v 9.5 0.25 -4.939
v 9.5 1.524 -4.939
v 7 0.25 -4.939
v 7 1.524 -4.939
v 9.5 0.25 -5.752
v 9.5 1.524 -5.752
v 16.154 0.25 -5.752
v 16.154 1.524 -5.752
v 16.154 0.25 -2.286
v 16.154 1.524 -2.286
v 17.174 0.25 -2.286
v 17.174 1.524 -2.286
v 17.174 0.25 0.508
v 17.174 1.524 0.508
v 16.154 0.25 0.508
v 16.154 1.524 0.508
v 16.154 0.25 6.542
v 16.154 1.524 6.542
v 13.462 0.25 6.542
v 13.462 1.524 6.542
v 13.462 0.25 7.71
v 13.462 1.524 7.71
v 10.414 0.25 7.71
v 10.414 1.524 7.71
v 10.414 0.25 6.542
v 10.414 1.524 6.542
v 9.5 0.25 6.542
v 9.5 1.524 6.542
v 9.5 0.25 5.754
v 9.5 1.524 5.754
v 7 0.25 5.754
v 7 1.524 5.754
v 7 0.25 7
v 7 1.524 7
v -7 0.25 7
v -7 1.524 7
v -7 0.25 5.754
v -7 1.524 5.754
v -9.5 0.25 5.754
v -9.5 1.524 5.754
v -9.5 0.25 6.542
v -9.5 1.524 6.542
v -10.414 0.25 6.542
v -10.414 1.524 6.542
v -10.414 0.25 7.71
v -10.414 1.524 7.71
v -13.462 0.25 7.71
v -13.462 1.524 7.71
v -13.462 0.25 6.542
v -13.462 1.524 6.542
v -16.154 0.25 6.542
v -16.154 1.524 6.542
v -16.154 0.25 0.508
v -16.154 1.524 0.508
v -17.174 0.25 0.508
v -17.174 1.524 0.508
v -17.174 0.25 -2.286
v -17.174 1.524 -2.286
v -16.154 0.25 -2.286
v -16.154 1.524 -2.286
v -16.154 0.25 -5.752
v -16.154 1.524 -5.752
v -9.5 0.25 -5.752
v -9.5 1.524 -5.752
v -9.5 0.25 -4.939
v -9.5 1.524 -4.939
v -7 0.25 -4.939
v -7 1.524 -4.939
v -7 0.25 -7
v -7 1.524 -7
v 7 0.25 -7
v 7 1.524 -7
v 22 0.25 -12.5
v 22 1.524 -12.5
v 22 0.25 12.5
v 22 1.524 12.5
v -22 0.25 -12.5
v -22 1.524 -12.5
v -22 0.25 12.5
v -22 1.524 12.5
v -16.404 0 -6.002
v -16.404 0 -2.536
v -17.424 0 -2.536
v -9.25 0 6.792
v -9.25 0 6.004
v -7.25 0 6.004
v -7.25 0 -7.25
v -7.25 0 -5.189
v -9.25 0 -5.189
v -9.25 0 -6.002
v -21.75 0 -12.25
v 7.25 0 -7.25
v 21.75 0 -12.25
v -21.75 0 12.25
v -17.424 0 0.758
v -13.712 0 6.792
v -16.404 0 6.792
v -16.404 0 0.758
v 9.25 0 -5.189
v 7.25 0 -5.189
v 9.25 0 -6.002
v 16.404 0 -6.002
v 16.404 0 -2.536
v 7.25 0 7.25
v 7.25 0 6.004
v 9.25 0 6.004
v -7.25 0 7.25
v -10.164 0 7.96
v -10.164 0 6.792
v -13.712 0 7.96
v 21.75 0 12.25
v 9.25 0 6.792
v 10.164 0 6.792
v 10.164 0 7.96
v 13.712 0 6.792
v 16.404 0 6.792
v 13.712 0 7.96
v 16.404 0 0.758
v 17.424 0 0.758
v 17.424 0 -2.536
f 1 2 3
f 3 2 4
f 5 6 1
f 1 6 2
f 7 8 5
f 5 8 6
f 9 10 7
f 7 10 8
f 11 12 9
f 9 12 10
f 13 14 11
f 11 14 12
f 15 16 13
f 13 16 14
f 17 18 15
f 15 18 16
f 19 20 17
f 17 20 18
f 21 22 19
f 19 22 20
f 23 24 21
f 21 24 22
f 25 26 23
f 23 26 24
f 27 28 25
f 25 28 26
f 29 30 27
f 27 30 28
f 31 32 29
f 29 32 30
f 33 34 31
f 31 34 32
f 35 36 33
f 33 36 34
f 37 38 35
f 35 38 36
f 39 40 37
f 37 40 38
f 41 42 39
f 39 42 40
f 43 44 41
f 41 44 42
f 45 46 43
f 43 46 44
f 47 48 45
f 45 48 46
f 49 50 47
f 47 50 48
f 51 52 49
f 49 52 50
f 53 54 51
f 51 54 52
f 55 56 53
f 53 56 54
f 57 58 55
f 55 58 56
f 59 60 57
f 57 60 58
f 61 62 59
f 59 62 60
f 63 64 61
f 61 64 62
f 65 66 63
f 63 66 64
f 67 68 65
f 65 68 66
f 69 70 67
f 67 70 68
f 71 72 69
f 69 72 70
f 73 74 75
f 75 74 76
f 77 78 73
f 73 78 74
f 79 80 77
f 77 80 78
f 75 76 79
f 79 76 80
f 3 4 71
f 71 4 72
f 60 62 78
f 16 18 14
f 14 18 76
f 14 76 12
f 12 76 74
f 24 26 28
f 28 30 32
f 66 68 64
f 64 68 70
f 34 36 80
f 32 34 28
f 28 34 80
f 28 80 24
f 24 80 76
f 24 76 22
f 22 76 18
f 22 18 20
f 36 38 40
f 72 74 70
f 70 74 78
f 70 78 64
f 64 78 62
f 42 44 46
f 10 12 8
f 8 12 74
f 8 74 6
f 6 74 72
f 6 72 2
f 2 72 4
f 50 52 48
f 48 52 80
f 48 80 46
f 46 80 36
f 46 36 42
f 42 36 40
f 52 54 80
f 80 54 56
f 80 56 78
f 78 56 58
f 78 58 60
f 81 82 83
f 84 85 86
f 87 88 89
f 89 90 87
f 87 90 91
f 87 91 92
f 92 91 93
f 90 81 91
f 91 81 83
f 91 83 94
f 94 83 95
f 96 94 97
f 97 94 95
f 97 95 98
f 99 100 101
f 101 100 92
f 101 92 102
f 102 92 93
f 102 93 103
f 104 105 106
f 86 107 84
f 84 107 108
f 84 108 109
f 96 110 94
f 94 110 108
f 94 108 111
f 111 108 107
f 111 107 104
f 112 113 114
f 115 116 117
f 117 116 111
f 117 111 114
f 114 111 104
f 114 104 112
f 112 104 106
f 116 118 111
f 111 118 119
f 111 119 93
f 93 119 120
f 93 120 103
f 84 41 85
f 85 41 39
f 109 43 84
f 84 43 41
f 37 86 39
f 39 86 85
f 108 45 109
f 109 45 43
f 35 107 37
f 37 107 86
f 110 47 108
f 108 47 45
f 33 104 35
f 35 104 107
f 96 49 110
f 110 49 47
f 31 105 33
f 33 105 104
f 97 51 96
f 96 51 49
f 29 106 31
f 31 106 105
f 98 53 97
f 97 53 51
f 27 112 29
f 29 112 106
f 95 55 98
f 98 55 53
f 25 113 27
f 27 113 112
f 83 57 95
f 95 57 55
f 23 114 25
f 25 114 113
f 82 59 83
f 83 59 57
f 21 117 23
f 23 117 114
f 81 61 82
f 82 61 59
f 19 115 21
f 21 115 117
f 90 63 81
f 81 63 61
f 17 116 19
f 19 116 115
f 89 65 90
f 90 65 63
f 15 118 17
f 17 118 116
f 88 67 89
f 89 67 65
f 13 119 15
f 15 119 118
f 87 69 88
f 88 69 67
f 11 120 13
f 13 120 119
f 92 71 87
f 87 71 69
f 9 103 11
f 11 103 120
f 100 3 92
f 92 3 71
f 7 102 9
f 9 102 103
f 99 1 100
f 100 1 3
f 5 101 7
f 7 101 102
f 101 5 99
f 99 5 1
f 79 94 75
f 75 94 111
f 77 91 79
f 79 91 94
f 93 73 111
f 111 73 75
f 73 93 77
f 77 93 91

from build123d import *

# Parameters (mm, degrees)
SKETCH1_W           = 44
SKETCH1_H           = 25
BOSS_EXTRUDE1_DEPTH = 1.524
CHAMFER1_SIZE       = 0.25


with BuildPart() as part:
    # Sketch1 → Boss-Extrude1 (new body)
    with BuildSketch(Plane(origin=(0, 0, 0), x_dir=(1, 0, 0), z_dir=(0, 1, 0))):
        Rectangle(SKETCH1_W, SKETCH1_H)
        Polygon((-9.4996, 4.939226775), (-7, 4.939226775), (-7, 7), (7, 7), (7, 4.939226775), (9.4996, 4.939226775), (9.4996, 5.752026775), (16.1544, 5.752026775), (16.1544, 2.286), (17.174185585, 2.286), (17.174185585, -0.508), (16.1544, -0.508), (16.1544, -6.541573225), (13.462, -6.541573225), (13.462, -7.709973225), (10.414, -7.709973225), (10.414, -6.541573225), (9.4996, -6.541573225), (9.4996, -5.754173225), (7, -5.754173225), (7, -7), (-7, -7), (-7, -5.754173225), (-9.4996, -5.754173225), (-9.4996, -6.541573225), (-10.414, -6.541573225), (-10.414, -7.709973225), (-13.462, -7.709973225), (-13.462, -6.541573225), (-16.1544, -6.541573225), (-16.1544, -0.508), (-17.174185585, -0.508), (-17.174185585, 2.286), (-16.1544, 2.286), (-16.1544, 5.752026775), (-9.4996, 5.752026775), align=None, mode=Mode.SUBTRACT)
    extrude(amount=BOSS_EXTRUDE1_DEPTH)

    # Chamfer1
    chamfer1_edges = [part.edges().sort_by_distance(p)[0] for p in [
        (7, 0, -5.969613387),
        (0, 0, -7),
        (-7, 0, -5.969613387),
        (-8.2498, 0, -4.939226775),
        (-9.4996, 0, -5.345626775),
        (-12.827, 0, -5.752026775),
        (-16.1544, 0, -4.019013387),
        (-16.664292792, 0, -2.286),
        (-17.174185585, 0, -0.889),
        (-16.664292792, 0, 0.508),
        (-16.1544, 0, 3.524786613),
        (-14.8082, 0, 6.541573225),
        (-13.462, 0, 7.125773225),
        (-11.938, 0, 7.709973225),
        (-10.414, 0, 7.125773225),
        (-9.9568, 0, 6.541573225),
        (-9.4996, 0, 6.147873225),
        (-8.2498, 0, 5.754173225),
        (-7, 0, 6.377086613),
        (0, 0, 7),
        (7, 0, 6.377086613),
        (8.2498, 0, 5.754173225),
        (9.4996, 0, 6.147873225),
        (9.9568, 0, 6.541573225),
        (10.414, 0, 7.125773225),
        (11.938, 0, 7.709973225),
        (13.462, 0, 7.125773225),
        (14.8082, 0, 6.541573225),
        (16.1544, 0, 3.524786613),
        (16.664292792, 0, 0.508),
        (17.174185585, 0, -0.889),
        (16.664292792, 0, -2.286),
        (16.1544, 0, -4.019013387),
        (12.827, 0, -5.752026775),
        (9.4996, 0, -5.345626775),
        (8.2498, 0, -4.939226775),
        (0, 0, 12.5),
        (-22, 0, 0),
        (0, 0, -12.5),
        (22, 0, 0),
    ]]
    chamfer(chamfer1_edges, length=CHAMFER1_SIZE)


solid = part.part
